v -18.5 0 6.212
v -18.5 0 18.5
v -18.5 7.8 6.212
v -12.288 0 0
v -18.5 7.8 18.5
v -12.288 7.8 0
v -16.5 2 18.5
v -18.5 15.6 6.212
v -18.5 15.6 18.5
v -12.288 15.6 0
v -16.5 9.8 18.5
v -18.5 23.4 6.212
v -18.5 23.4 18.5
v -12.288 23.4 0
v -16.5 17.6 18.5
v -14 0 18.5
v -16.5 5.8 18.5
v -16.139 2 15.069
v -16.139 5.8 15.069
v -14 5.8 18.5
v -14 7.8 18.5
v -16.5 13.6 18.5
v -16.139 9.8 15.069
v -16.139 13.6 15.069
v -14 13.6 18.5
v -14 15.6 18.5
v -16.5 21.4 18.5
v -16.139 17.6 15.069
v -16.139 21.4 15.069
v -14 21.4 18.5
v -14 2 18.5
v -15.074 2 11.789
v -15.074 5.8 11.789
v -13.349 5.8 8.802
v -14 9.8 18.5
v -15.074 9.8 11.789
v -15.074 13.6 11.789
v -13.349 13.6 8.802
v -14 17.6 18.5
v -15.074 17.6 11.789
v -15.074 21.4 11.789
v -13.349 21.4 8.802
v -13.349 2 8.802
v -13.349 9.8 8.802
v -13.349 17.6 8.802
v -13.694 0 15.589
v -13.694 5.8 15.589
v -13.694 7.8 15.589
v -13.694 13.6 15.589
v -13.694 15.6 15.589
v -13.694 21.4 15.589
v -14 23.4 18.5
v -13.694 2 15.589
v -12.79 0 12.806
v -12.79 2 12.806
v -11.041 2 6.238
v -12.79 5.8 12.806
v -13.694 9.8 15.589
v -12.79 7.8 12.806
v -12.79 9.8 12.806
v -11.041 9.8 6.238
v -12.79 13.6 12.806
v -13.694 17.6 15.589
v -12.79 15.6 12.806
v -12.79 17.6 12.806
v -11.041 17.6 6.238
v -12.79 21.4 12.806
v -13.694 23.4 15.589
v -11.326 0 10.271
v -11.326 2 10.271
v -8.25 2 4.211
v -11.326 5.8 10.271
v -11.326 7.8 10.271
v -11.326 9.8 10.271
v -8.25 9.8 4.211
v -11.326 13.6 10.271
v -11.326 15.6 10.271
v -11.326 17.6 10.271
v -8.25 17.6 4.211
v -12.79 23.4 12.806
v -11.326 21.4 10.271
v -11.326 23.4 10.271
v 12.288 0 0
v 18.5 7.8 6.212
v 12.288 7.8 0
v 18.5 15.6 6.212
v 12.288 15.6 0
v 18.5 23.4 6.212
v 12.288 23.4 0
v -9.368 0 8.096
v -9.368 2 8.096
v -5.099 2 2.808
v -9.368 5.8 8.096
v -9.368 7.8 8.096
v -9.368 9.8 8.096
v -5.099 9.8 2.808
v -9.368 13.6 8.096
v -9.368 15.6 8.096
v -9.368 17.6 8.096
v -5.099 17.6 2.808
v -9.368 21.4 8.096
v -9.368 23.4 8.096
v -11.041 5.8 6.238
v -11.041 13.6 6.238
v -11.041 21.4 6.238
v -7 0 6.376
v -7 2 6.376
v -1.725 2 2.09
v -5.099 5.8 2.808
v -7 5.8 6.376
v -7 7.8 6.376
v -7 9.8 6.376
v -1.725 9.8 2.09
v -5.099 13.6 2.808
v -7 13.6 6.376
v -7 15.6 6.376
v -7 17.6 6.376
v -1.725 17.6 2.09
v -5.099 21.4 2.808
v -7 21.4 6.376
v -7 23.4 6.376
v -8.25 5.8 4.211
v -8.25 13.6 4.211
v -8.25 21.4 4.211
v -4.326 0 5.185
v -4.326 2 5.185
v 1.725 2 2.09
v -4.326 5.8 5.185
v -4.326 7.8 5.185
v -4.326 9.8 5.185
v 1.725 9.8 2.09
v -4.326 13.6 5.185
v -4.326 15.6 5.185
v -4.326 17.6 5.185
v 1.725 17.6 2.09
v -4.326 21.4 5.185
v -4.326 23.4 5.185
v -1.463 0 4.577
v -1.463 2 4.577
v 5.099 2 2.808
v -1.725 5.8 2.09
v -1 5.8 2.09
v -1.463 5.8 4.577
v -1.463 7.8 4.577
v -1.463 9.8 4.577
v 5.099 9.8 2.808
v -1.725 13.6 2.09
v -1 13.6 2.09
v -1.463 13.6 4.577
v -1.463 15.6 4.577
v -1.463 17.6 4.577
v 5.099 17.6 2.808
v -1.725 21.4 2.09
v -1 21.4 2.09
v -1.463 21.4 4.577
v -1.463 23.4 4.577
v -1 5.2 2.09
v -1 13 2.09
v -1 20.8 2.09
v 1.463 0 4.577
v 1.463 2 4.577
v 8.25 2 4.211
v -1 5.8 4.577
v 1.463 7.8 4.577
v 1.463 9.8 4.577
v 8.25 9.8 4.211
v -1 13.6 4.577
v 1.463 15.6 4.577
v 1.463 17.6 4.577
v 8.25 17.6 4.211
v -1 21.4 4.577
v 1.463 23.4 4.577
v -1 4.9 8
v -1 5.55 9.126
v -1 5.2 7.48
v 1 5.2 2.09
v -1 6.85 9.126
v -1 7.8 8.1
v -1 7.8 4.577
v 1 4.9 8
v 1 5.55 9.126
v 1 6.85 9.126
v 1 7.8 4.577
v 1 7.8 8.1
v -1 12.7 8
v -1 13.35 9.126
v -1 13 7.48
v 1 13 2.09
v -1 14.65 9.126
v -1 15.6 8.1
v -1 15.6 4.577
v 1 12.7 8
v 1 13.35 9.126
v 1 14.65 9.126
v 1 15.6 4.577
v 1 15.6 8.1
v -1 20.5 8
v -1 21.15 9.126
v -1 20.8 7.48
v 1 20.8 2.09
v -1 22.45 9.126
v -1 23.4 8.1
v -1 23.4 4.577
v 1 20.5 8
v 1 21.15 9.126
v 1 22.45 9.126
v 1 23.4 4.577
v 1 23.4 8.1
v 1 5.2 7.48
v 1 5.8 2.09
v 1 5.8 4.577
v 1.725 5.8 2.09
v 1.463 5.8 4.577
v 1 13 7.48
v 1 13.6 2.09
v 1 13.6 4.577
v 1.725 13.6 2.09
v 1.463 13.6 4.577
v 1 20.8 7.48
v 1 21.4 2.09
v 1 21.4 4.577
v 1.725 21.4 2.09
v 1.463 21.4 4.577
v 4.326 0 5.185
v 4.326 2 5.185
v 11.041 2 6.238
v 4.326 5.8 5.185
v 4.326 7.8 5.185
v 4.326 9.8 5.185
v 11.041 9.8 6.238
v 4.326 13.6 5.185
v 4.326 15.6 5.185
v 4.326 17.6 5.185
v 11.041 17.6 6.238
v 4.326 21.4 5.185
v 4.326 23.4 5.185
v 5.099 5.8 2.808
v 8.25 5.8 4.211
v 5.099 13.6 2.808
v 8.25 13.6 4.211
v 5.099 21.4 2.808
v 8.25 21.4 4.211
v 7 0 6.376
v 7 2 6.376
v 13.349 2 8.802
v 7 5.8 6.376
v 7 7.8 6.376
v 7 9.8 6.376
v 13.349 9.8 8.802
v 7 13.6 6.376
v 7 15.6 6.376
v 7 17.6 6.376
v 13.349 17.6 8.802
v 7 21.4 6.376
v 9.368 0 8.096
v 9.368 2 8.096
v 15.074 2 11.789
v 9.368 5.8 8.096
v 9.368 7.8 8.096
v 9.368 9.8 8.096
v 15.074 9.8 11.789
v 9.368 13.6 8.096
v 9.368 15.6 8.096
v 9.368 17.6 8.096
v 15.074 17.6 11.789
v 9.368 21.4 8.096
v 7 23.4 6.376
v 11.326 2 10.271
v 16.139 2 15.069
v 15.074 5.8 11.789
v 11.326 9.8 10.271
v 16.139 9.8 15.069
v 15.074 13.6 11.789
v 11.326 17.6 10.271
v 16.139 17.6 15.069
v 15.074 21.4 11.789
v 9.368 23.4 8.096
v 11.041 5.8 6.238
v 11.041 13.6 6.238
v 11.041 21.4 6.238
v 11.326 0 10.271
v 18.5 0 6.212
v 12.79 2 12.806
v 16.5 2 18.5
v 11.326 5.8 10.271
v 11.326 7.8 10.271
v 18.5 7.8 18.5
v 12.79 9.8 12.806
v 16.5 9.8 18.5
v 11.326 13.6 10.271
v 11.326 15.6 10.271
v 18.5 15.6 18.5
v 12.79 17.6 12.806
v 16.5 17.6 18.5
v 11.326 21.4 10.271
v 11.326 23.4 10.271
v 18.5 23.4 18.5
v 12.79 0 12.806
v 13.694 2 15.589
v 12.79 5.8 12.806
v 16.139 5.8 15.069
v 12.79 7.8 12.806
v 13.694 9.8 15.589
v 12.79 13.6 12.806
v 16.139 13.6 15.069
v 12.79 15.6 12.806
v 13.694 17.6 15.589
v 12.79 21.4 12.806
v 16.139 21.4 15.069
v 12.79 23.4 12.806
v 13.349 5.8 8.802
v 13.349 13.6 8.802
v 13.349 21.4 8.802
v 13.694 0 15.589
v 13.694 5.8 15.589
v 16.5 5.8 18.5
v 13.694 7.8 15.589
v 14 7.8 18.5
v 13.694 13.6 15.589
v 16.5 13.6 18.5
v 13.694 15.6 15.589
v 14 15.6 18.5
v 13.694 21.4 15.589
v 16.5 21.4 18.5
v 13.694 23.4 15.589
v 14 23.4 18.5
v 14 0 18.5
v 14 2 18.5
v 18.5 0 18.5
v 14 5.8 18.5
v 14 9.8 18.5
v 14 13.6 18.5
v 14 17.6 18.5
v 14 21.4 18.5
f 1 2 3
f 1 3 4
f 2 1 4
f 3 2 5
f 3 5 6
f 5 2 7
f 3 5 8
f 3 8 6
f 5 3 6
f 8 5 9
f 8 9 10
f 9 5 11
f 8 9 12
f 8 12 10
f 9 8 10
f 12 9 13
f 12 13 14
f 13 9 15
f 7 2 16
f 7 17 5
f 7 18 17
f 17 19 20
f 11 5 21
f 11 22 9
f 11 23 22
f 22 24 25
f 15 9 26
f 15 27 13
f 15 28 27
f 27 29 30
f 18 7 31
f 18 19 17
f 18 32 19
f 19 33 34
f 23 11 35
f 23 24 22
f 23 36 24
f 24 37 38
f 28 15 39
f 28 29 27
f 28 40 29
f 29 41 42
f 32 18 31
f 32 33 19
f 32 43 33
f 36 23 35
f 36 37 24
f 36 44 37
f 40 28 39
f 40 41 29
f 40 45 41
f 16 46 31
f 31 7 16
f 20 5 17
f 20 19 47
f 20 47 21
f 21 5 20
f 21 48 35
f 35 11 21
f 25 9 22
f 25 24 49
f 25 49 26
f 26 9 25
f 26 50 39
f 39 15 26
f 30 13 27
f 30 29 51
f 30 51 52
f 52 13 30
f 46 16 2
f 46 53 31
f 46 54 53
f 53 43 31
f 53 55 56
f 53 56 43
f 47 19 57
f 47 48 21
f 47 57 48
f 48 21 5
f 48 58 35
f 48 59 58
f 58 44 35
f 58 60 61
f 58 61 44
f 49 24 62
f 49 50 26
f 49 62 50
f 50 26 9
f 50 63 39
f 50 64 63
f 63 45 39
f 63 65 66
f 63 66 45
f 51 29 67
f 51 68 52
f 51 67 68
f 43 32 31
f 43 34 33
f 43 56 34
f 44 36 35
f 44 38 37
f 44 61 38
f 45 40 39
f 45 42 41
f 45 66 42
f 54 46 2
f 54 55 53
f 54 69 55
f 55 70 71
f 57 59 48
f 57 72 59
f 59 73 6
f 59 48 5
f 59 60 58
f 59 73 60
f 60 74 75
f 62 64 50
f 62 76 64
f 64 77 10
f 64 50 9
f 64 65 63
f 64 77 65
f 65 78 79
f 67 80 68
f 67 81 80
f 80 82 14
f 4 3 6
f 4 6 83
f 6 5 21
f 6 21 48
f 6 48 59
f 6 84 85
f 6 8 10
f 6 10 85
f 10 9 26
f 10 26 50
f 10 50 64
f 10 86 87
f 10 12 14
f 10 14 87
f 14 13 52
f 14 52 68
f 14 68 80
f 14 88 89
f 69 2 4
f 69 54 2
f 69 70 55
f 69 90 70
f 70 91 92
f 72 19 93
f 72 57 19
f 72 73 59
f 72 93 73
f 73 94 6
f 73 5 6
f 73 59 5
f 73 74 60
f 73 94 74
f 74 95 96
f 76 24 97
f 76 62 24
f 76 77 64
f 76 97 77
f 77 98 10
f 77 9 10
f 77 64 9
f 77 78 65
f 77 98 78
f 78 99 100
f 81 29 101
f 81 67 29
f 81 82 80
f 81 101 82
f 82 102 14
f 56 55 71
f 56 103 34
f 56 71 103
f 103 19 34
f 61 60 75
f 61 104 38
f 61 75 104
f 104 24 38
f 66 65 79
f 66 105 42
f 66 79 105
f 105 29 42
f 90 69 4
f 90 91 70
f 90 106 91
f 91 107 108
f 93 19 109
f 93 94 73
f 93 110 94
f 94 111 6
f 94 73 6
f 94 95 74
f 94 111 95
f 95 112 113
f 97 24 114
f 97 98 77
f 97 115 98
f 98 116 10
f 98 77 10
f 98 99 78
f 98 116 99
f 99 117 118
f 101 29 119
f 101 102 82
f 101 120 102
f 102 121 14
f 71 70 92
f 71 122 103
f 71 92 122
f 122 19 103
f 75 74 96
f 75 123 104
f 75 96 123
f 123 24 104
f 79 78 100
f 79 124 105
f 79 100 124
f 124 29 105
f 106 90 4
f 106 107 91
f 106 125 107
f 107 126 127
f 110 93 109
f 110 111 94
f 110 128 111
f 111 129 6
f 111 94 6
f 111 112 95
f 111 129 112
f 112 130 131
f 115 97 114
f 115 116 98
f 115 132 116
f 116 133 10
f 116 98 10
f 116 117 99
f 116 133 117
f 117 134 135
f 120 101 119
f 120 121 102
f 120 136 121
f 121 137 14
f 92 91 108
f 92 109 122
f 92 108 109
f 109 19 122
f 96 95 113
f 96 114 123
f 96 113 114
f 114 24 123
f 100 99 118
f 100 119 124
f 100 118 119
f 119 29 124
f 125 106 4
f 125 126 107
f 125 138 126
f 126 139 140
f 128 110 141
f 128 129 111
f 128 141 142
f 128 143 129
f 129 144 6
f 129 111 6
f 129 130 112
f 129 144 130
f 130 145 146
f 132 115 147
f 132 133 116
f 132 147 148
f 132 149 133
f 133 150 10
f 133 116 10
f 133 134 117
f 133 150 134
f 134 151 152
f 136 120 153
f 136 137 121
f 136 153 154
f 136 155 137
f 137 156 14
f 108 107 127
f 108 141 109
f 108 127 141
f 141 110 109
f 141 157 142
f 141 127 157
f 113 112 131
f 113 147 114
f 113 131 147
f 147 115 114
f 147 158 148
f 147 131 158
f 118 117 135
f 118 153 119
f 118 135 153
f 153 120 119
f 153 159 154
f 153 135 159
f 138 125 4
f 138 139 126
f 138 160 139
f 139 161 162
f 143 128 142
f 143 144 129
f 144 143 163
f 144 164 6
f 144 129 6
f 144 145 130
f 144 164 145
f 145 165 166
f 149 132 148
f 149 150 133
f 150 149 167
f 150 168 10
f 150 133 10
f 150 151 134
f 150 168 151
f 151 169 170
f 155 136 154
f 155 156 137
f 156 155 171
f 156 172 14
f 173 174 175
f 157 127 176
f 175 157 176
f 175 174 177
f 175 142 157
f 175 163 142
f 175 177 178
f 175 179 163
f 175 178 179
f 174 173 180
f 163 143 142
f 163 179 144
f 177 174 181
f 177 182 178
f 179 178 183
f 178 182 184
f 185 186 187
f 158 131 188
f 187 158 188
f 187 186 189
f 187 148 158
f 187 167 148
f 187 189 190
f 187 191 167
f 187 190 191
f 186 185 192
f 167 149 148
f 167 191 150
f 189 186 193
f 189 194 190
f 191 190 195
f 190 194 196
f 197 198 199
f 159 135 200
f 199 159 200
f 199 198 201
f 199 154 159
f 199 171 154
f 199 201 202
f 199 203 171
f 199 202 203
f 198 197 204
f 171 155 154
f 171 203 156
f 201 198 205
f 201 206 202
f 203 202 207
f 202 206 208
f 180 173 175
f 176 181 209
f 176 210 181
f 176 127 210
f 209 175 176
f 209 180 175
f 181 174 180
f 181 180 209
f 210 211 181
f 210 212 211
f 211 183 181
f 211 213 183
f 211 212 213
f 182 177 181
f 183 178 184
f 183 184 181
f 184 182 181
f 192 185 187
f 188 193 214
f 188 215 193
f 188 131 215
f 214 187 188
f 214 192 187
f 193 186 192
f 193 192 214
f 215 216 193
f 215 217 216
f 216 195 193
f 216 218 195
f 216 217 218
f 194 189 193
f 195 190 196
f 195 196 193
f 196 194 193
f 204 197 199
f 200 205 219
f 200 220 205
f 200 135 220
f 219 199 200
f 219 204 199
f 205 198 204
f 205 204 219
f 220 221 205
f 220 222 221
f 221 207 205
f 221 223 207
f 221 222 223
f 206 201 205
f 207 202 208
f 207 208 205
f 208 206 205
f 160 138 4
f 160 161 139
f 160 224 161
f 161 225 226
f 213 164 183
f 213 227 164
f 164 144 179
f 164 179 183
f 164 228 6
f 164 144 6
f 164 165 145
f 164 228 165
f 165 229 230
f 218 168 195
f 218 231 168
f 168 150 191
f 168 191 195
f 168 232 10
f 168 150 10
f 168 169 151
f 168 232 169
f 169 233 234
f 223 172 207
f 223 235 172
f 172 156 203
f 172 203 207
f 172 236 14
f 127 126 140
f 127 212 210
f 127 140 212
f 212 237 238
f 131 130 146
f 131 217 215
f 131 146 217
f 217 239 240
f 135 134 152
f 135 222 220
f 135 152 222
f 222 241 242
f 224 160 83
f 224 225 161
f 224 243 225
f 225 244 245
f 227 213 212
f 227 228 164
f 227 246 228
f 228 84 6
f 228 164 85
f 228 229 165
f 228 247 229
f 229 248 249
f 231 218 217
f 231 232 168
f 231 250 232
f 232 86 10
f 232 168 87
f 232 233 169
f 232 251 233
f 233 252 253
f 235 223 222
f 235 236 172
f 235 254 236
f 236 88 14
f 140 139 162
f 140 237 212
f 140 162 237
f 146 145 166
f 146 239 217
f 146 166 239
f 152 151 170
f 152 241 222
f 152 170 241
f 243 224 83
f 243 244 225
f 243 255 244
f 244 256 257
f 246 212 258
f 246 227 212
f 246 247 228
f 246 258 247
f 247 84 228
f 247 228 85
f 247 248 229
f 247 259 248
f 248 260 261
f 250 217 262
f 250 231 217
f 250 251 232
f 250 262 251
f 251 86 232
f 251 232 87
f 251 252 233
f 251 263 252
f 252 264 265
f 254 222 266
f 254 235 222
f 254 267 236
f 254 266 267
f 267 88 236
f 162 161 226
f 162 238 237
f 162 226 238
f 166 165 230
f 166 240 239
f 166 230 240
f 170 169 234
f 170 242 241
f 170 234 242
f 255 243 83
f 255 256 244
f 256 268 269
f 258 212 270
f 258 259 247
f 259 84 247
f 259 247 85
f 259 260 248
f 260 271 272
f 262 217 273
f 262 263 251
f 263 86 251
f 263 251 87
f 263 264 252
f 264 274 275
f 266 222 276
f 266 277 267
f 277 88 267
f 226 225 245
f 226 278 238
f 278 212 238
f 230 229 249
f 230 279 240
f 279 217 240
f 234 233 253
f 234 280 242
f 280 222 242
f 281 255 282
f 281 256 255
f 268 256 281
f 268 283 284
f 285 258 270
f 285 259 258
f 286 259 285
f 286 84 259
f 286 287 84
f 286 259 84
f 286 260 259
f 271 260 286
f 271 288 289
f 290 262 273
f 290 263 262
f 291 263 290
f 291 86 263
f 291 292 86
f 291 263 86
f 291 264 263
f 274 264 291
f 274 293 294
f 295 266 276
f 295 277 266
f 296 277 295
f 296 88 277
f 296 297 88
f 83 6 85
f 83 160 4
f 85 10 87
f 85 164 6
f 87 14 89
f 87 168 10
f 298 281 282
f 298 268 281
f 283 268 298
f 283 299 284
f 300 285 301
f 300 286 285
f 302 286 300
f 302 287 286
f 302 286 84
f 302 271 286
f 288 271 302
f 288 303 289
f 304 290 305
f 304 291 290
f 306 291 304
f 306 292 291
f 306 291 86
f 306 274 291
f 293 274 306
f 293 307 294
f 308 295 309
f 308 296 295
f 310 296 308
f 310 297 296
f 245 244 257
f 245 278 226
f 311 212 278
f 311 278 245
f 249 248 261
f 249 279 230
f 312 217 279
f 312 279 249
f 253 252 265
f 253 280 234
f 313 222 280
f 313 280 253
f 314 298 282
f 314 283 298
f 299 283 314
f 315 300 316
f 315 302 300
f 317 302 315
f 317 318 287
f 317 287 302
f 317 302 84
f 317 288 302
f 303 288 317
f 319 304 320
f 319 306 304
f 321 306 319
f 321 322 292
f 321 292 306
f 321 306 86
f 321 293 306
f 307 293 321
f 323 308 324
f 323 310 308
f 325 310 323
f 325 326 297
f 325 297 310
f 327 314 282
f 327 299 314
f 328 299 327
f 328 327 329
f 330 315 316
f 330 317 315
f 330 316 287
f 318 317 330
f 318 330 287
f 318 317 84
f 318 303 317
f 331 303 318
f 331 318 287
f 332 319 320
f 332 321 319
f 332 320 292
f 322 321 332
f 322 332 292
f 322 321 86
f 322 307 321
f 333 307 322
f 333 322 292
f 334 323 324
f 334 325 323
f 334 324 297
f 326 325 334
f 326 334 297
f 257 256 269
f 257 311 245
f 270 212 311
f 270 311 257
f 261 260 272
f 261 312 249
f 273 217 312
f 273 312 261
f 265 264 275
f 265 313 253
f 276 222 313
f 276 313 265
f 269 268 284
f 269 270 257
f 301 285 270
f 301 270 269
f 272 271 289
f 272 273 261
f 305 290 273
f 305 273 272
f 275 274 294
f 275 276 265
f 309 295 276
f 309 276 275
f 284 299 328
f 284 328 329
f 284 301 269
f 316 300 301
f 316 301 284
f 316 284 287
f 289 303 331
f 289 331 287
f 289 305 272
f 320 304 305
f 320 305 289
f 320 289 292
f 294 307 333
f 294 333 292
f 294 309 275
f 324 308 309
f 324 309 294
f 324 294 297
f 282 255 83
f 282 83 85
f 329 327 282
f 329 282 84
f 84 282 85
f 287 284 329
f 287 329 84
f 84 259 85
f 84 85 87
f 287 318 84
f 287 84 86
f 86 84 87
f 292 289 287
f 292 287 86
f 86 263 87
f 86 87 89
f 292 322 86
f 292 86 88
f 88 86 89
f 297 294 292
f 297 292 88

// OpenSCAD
nOffSegments=3;

circleWidth=3.8;
circleDia=33;

wallWidth=2;

lockWidth=2;
lockHeight=6;
lockShiftY=0.6;

doubleWall=2*wallWidth;
cubeMassHeight=(circleDia+doubleWall)/2;
cubeMassWidth=circleDia+doubleWall;
cubeMassLength=circleWidth+doubleWall;


module cubeMass() {
    intersection() {
        translate([0, 0, cubeMassHeight/2])
         cube([cubeMassWidth, cubeMassLength, cubeMassHeight], center=true);
        
        translate([0, 0, (3/4)*cubeMassHeight])
         rotate([0, 45, 0])
         cube([cubeMassWidth, cubeMassHeight, cubeMassWidth], center=true);
    }  
}

module cylinderHole() {
    translate([0, 0, cubeMassHeight]) 
     rotate([90, 0, 0]) 
     union() {
        cylinder(h=circleWidth, d=circleDia, center=true);
        cylinder(h=cubeMassLength, d=circleDia-5, center=true);
    }
}

module lock() {
    translate([-lockWidth/2, circleWidth/2-lockShiftY, wallWidth]) {
        color("blue")
         cube([lockWidth, wallWidth+lockShiftY, lockHeight]);

        color("white") 
         hull() {
            translate([0,0,lockHeight])          
             cube([lockWidth, wallWidth+lockShiftY, 0.1]);
        
            translate([lockWidth/2, wallWidth/2, lockHeight]) 
             rotate([30,0, 0]) 
             rotate([0, 90, 0]) 
             cylinder(h=lockWidth, d=wallWidth+lockShiftY, center=true, $fn=6);
        }
    }
}

for(y=[1:nOffSegments]) {
translate([0, y*cubeMassLength-cubeMassLength/2, 0]) union() {
    difference() {
        cubeMass();
        cylinderHole();
    }
    lock();
}
}
    
